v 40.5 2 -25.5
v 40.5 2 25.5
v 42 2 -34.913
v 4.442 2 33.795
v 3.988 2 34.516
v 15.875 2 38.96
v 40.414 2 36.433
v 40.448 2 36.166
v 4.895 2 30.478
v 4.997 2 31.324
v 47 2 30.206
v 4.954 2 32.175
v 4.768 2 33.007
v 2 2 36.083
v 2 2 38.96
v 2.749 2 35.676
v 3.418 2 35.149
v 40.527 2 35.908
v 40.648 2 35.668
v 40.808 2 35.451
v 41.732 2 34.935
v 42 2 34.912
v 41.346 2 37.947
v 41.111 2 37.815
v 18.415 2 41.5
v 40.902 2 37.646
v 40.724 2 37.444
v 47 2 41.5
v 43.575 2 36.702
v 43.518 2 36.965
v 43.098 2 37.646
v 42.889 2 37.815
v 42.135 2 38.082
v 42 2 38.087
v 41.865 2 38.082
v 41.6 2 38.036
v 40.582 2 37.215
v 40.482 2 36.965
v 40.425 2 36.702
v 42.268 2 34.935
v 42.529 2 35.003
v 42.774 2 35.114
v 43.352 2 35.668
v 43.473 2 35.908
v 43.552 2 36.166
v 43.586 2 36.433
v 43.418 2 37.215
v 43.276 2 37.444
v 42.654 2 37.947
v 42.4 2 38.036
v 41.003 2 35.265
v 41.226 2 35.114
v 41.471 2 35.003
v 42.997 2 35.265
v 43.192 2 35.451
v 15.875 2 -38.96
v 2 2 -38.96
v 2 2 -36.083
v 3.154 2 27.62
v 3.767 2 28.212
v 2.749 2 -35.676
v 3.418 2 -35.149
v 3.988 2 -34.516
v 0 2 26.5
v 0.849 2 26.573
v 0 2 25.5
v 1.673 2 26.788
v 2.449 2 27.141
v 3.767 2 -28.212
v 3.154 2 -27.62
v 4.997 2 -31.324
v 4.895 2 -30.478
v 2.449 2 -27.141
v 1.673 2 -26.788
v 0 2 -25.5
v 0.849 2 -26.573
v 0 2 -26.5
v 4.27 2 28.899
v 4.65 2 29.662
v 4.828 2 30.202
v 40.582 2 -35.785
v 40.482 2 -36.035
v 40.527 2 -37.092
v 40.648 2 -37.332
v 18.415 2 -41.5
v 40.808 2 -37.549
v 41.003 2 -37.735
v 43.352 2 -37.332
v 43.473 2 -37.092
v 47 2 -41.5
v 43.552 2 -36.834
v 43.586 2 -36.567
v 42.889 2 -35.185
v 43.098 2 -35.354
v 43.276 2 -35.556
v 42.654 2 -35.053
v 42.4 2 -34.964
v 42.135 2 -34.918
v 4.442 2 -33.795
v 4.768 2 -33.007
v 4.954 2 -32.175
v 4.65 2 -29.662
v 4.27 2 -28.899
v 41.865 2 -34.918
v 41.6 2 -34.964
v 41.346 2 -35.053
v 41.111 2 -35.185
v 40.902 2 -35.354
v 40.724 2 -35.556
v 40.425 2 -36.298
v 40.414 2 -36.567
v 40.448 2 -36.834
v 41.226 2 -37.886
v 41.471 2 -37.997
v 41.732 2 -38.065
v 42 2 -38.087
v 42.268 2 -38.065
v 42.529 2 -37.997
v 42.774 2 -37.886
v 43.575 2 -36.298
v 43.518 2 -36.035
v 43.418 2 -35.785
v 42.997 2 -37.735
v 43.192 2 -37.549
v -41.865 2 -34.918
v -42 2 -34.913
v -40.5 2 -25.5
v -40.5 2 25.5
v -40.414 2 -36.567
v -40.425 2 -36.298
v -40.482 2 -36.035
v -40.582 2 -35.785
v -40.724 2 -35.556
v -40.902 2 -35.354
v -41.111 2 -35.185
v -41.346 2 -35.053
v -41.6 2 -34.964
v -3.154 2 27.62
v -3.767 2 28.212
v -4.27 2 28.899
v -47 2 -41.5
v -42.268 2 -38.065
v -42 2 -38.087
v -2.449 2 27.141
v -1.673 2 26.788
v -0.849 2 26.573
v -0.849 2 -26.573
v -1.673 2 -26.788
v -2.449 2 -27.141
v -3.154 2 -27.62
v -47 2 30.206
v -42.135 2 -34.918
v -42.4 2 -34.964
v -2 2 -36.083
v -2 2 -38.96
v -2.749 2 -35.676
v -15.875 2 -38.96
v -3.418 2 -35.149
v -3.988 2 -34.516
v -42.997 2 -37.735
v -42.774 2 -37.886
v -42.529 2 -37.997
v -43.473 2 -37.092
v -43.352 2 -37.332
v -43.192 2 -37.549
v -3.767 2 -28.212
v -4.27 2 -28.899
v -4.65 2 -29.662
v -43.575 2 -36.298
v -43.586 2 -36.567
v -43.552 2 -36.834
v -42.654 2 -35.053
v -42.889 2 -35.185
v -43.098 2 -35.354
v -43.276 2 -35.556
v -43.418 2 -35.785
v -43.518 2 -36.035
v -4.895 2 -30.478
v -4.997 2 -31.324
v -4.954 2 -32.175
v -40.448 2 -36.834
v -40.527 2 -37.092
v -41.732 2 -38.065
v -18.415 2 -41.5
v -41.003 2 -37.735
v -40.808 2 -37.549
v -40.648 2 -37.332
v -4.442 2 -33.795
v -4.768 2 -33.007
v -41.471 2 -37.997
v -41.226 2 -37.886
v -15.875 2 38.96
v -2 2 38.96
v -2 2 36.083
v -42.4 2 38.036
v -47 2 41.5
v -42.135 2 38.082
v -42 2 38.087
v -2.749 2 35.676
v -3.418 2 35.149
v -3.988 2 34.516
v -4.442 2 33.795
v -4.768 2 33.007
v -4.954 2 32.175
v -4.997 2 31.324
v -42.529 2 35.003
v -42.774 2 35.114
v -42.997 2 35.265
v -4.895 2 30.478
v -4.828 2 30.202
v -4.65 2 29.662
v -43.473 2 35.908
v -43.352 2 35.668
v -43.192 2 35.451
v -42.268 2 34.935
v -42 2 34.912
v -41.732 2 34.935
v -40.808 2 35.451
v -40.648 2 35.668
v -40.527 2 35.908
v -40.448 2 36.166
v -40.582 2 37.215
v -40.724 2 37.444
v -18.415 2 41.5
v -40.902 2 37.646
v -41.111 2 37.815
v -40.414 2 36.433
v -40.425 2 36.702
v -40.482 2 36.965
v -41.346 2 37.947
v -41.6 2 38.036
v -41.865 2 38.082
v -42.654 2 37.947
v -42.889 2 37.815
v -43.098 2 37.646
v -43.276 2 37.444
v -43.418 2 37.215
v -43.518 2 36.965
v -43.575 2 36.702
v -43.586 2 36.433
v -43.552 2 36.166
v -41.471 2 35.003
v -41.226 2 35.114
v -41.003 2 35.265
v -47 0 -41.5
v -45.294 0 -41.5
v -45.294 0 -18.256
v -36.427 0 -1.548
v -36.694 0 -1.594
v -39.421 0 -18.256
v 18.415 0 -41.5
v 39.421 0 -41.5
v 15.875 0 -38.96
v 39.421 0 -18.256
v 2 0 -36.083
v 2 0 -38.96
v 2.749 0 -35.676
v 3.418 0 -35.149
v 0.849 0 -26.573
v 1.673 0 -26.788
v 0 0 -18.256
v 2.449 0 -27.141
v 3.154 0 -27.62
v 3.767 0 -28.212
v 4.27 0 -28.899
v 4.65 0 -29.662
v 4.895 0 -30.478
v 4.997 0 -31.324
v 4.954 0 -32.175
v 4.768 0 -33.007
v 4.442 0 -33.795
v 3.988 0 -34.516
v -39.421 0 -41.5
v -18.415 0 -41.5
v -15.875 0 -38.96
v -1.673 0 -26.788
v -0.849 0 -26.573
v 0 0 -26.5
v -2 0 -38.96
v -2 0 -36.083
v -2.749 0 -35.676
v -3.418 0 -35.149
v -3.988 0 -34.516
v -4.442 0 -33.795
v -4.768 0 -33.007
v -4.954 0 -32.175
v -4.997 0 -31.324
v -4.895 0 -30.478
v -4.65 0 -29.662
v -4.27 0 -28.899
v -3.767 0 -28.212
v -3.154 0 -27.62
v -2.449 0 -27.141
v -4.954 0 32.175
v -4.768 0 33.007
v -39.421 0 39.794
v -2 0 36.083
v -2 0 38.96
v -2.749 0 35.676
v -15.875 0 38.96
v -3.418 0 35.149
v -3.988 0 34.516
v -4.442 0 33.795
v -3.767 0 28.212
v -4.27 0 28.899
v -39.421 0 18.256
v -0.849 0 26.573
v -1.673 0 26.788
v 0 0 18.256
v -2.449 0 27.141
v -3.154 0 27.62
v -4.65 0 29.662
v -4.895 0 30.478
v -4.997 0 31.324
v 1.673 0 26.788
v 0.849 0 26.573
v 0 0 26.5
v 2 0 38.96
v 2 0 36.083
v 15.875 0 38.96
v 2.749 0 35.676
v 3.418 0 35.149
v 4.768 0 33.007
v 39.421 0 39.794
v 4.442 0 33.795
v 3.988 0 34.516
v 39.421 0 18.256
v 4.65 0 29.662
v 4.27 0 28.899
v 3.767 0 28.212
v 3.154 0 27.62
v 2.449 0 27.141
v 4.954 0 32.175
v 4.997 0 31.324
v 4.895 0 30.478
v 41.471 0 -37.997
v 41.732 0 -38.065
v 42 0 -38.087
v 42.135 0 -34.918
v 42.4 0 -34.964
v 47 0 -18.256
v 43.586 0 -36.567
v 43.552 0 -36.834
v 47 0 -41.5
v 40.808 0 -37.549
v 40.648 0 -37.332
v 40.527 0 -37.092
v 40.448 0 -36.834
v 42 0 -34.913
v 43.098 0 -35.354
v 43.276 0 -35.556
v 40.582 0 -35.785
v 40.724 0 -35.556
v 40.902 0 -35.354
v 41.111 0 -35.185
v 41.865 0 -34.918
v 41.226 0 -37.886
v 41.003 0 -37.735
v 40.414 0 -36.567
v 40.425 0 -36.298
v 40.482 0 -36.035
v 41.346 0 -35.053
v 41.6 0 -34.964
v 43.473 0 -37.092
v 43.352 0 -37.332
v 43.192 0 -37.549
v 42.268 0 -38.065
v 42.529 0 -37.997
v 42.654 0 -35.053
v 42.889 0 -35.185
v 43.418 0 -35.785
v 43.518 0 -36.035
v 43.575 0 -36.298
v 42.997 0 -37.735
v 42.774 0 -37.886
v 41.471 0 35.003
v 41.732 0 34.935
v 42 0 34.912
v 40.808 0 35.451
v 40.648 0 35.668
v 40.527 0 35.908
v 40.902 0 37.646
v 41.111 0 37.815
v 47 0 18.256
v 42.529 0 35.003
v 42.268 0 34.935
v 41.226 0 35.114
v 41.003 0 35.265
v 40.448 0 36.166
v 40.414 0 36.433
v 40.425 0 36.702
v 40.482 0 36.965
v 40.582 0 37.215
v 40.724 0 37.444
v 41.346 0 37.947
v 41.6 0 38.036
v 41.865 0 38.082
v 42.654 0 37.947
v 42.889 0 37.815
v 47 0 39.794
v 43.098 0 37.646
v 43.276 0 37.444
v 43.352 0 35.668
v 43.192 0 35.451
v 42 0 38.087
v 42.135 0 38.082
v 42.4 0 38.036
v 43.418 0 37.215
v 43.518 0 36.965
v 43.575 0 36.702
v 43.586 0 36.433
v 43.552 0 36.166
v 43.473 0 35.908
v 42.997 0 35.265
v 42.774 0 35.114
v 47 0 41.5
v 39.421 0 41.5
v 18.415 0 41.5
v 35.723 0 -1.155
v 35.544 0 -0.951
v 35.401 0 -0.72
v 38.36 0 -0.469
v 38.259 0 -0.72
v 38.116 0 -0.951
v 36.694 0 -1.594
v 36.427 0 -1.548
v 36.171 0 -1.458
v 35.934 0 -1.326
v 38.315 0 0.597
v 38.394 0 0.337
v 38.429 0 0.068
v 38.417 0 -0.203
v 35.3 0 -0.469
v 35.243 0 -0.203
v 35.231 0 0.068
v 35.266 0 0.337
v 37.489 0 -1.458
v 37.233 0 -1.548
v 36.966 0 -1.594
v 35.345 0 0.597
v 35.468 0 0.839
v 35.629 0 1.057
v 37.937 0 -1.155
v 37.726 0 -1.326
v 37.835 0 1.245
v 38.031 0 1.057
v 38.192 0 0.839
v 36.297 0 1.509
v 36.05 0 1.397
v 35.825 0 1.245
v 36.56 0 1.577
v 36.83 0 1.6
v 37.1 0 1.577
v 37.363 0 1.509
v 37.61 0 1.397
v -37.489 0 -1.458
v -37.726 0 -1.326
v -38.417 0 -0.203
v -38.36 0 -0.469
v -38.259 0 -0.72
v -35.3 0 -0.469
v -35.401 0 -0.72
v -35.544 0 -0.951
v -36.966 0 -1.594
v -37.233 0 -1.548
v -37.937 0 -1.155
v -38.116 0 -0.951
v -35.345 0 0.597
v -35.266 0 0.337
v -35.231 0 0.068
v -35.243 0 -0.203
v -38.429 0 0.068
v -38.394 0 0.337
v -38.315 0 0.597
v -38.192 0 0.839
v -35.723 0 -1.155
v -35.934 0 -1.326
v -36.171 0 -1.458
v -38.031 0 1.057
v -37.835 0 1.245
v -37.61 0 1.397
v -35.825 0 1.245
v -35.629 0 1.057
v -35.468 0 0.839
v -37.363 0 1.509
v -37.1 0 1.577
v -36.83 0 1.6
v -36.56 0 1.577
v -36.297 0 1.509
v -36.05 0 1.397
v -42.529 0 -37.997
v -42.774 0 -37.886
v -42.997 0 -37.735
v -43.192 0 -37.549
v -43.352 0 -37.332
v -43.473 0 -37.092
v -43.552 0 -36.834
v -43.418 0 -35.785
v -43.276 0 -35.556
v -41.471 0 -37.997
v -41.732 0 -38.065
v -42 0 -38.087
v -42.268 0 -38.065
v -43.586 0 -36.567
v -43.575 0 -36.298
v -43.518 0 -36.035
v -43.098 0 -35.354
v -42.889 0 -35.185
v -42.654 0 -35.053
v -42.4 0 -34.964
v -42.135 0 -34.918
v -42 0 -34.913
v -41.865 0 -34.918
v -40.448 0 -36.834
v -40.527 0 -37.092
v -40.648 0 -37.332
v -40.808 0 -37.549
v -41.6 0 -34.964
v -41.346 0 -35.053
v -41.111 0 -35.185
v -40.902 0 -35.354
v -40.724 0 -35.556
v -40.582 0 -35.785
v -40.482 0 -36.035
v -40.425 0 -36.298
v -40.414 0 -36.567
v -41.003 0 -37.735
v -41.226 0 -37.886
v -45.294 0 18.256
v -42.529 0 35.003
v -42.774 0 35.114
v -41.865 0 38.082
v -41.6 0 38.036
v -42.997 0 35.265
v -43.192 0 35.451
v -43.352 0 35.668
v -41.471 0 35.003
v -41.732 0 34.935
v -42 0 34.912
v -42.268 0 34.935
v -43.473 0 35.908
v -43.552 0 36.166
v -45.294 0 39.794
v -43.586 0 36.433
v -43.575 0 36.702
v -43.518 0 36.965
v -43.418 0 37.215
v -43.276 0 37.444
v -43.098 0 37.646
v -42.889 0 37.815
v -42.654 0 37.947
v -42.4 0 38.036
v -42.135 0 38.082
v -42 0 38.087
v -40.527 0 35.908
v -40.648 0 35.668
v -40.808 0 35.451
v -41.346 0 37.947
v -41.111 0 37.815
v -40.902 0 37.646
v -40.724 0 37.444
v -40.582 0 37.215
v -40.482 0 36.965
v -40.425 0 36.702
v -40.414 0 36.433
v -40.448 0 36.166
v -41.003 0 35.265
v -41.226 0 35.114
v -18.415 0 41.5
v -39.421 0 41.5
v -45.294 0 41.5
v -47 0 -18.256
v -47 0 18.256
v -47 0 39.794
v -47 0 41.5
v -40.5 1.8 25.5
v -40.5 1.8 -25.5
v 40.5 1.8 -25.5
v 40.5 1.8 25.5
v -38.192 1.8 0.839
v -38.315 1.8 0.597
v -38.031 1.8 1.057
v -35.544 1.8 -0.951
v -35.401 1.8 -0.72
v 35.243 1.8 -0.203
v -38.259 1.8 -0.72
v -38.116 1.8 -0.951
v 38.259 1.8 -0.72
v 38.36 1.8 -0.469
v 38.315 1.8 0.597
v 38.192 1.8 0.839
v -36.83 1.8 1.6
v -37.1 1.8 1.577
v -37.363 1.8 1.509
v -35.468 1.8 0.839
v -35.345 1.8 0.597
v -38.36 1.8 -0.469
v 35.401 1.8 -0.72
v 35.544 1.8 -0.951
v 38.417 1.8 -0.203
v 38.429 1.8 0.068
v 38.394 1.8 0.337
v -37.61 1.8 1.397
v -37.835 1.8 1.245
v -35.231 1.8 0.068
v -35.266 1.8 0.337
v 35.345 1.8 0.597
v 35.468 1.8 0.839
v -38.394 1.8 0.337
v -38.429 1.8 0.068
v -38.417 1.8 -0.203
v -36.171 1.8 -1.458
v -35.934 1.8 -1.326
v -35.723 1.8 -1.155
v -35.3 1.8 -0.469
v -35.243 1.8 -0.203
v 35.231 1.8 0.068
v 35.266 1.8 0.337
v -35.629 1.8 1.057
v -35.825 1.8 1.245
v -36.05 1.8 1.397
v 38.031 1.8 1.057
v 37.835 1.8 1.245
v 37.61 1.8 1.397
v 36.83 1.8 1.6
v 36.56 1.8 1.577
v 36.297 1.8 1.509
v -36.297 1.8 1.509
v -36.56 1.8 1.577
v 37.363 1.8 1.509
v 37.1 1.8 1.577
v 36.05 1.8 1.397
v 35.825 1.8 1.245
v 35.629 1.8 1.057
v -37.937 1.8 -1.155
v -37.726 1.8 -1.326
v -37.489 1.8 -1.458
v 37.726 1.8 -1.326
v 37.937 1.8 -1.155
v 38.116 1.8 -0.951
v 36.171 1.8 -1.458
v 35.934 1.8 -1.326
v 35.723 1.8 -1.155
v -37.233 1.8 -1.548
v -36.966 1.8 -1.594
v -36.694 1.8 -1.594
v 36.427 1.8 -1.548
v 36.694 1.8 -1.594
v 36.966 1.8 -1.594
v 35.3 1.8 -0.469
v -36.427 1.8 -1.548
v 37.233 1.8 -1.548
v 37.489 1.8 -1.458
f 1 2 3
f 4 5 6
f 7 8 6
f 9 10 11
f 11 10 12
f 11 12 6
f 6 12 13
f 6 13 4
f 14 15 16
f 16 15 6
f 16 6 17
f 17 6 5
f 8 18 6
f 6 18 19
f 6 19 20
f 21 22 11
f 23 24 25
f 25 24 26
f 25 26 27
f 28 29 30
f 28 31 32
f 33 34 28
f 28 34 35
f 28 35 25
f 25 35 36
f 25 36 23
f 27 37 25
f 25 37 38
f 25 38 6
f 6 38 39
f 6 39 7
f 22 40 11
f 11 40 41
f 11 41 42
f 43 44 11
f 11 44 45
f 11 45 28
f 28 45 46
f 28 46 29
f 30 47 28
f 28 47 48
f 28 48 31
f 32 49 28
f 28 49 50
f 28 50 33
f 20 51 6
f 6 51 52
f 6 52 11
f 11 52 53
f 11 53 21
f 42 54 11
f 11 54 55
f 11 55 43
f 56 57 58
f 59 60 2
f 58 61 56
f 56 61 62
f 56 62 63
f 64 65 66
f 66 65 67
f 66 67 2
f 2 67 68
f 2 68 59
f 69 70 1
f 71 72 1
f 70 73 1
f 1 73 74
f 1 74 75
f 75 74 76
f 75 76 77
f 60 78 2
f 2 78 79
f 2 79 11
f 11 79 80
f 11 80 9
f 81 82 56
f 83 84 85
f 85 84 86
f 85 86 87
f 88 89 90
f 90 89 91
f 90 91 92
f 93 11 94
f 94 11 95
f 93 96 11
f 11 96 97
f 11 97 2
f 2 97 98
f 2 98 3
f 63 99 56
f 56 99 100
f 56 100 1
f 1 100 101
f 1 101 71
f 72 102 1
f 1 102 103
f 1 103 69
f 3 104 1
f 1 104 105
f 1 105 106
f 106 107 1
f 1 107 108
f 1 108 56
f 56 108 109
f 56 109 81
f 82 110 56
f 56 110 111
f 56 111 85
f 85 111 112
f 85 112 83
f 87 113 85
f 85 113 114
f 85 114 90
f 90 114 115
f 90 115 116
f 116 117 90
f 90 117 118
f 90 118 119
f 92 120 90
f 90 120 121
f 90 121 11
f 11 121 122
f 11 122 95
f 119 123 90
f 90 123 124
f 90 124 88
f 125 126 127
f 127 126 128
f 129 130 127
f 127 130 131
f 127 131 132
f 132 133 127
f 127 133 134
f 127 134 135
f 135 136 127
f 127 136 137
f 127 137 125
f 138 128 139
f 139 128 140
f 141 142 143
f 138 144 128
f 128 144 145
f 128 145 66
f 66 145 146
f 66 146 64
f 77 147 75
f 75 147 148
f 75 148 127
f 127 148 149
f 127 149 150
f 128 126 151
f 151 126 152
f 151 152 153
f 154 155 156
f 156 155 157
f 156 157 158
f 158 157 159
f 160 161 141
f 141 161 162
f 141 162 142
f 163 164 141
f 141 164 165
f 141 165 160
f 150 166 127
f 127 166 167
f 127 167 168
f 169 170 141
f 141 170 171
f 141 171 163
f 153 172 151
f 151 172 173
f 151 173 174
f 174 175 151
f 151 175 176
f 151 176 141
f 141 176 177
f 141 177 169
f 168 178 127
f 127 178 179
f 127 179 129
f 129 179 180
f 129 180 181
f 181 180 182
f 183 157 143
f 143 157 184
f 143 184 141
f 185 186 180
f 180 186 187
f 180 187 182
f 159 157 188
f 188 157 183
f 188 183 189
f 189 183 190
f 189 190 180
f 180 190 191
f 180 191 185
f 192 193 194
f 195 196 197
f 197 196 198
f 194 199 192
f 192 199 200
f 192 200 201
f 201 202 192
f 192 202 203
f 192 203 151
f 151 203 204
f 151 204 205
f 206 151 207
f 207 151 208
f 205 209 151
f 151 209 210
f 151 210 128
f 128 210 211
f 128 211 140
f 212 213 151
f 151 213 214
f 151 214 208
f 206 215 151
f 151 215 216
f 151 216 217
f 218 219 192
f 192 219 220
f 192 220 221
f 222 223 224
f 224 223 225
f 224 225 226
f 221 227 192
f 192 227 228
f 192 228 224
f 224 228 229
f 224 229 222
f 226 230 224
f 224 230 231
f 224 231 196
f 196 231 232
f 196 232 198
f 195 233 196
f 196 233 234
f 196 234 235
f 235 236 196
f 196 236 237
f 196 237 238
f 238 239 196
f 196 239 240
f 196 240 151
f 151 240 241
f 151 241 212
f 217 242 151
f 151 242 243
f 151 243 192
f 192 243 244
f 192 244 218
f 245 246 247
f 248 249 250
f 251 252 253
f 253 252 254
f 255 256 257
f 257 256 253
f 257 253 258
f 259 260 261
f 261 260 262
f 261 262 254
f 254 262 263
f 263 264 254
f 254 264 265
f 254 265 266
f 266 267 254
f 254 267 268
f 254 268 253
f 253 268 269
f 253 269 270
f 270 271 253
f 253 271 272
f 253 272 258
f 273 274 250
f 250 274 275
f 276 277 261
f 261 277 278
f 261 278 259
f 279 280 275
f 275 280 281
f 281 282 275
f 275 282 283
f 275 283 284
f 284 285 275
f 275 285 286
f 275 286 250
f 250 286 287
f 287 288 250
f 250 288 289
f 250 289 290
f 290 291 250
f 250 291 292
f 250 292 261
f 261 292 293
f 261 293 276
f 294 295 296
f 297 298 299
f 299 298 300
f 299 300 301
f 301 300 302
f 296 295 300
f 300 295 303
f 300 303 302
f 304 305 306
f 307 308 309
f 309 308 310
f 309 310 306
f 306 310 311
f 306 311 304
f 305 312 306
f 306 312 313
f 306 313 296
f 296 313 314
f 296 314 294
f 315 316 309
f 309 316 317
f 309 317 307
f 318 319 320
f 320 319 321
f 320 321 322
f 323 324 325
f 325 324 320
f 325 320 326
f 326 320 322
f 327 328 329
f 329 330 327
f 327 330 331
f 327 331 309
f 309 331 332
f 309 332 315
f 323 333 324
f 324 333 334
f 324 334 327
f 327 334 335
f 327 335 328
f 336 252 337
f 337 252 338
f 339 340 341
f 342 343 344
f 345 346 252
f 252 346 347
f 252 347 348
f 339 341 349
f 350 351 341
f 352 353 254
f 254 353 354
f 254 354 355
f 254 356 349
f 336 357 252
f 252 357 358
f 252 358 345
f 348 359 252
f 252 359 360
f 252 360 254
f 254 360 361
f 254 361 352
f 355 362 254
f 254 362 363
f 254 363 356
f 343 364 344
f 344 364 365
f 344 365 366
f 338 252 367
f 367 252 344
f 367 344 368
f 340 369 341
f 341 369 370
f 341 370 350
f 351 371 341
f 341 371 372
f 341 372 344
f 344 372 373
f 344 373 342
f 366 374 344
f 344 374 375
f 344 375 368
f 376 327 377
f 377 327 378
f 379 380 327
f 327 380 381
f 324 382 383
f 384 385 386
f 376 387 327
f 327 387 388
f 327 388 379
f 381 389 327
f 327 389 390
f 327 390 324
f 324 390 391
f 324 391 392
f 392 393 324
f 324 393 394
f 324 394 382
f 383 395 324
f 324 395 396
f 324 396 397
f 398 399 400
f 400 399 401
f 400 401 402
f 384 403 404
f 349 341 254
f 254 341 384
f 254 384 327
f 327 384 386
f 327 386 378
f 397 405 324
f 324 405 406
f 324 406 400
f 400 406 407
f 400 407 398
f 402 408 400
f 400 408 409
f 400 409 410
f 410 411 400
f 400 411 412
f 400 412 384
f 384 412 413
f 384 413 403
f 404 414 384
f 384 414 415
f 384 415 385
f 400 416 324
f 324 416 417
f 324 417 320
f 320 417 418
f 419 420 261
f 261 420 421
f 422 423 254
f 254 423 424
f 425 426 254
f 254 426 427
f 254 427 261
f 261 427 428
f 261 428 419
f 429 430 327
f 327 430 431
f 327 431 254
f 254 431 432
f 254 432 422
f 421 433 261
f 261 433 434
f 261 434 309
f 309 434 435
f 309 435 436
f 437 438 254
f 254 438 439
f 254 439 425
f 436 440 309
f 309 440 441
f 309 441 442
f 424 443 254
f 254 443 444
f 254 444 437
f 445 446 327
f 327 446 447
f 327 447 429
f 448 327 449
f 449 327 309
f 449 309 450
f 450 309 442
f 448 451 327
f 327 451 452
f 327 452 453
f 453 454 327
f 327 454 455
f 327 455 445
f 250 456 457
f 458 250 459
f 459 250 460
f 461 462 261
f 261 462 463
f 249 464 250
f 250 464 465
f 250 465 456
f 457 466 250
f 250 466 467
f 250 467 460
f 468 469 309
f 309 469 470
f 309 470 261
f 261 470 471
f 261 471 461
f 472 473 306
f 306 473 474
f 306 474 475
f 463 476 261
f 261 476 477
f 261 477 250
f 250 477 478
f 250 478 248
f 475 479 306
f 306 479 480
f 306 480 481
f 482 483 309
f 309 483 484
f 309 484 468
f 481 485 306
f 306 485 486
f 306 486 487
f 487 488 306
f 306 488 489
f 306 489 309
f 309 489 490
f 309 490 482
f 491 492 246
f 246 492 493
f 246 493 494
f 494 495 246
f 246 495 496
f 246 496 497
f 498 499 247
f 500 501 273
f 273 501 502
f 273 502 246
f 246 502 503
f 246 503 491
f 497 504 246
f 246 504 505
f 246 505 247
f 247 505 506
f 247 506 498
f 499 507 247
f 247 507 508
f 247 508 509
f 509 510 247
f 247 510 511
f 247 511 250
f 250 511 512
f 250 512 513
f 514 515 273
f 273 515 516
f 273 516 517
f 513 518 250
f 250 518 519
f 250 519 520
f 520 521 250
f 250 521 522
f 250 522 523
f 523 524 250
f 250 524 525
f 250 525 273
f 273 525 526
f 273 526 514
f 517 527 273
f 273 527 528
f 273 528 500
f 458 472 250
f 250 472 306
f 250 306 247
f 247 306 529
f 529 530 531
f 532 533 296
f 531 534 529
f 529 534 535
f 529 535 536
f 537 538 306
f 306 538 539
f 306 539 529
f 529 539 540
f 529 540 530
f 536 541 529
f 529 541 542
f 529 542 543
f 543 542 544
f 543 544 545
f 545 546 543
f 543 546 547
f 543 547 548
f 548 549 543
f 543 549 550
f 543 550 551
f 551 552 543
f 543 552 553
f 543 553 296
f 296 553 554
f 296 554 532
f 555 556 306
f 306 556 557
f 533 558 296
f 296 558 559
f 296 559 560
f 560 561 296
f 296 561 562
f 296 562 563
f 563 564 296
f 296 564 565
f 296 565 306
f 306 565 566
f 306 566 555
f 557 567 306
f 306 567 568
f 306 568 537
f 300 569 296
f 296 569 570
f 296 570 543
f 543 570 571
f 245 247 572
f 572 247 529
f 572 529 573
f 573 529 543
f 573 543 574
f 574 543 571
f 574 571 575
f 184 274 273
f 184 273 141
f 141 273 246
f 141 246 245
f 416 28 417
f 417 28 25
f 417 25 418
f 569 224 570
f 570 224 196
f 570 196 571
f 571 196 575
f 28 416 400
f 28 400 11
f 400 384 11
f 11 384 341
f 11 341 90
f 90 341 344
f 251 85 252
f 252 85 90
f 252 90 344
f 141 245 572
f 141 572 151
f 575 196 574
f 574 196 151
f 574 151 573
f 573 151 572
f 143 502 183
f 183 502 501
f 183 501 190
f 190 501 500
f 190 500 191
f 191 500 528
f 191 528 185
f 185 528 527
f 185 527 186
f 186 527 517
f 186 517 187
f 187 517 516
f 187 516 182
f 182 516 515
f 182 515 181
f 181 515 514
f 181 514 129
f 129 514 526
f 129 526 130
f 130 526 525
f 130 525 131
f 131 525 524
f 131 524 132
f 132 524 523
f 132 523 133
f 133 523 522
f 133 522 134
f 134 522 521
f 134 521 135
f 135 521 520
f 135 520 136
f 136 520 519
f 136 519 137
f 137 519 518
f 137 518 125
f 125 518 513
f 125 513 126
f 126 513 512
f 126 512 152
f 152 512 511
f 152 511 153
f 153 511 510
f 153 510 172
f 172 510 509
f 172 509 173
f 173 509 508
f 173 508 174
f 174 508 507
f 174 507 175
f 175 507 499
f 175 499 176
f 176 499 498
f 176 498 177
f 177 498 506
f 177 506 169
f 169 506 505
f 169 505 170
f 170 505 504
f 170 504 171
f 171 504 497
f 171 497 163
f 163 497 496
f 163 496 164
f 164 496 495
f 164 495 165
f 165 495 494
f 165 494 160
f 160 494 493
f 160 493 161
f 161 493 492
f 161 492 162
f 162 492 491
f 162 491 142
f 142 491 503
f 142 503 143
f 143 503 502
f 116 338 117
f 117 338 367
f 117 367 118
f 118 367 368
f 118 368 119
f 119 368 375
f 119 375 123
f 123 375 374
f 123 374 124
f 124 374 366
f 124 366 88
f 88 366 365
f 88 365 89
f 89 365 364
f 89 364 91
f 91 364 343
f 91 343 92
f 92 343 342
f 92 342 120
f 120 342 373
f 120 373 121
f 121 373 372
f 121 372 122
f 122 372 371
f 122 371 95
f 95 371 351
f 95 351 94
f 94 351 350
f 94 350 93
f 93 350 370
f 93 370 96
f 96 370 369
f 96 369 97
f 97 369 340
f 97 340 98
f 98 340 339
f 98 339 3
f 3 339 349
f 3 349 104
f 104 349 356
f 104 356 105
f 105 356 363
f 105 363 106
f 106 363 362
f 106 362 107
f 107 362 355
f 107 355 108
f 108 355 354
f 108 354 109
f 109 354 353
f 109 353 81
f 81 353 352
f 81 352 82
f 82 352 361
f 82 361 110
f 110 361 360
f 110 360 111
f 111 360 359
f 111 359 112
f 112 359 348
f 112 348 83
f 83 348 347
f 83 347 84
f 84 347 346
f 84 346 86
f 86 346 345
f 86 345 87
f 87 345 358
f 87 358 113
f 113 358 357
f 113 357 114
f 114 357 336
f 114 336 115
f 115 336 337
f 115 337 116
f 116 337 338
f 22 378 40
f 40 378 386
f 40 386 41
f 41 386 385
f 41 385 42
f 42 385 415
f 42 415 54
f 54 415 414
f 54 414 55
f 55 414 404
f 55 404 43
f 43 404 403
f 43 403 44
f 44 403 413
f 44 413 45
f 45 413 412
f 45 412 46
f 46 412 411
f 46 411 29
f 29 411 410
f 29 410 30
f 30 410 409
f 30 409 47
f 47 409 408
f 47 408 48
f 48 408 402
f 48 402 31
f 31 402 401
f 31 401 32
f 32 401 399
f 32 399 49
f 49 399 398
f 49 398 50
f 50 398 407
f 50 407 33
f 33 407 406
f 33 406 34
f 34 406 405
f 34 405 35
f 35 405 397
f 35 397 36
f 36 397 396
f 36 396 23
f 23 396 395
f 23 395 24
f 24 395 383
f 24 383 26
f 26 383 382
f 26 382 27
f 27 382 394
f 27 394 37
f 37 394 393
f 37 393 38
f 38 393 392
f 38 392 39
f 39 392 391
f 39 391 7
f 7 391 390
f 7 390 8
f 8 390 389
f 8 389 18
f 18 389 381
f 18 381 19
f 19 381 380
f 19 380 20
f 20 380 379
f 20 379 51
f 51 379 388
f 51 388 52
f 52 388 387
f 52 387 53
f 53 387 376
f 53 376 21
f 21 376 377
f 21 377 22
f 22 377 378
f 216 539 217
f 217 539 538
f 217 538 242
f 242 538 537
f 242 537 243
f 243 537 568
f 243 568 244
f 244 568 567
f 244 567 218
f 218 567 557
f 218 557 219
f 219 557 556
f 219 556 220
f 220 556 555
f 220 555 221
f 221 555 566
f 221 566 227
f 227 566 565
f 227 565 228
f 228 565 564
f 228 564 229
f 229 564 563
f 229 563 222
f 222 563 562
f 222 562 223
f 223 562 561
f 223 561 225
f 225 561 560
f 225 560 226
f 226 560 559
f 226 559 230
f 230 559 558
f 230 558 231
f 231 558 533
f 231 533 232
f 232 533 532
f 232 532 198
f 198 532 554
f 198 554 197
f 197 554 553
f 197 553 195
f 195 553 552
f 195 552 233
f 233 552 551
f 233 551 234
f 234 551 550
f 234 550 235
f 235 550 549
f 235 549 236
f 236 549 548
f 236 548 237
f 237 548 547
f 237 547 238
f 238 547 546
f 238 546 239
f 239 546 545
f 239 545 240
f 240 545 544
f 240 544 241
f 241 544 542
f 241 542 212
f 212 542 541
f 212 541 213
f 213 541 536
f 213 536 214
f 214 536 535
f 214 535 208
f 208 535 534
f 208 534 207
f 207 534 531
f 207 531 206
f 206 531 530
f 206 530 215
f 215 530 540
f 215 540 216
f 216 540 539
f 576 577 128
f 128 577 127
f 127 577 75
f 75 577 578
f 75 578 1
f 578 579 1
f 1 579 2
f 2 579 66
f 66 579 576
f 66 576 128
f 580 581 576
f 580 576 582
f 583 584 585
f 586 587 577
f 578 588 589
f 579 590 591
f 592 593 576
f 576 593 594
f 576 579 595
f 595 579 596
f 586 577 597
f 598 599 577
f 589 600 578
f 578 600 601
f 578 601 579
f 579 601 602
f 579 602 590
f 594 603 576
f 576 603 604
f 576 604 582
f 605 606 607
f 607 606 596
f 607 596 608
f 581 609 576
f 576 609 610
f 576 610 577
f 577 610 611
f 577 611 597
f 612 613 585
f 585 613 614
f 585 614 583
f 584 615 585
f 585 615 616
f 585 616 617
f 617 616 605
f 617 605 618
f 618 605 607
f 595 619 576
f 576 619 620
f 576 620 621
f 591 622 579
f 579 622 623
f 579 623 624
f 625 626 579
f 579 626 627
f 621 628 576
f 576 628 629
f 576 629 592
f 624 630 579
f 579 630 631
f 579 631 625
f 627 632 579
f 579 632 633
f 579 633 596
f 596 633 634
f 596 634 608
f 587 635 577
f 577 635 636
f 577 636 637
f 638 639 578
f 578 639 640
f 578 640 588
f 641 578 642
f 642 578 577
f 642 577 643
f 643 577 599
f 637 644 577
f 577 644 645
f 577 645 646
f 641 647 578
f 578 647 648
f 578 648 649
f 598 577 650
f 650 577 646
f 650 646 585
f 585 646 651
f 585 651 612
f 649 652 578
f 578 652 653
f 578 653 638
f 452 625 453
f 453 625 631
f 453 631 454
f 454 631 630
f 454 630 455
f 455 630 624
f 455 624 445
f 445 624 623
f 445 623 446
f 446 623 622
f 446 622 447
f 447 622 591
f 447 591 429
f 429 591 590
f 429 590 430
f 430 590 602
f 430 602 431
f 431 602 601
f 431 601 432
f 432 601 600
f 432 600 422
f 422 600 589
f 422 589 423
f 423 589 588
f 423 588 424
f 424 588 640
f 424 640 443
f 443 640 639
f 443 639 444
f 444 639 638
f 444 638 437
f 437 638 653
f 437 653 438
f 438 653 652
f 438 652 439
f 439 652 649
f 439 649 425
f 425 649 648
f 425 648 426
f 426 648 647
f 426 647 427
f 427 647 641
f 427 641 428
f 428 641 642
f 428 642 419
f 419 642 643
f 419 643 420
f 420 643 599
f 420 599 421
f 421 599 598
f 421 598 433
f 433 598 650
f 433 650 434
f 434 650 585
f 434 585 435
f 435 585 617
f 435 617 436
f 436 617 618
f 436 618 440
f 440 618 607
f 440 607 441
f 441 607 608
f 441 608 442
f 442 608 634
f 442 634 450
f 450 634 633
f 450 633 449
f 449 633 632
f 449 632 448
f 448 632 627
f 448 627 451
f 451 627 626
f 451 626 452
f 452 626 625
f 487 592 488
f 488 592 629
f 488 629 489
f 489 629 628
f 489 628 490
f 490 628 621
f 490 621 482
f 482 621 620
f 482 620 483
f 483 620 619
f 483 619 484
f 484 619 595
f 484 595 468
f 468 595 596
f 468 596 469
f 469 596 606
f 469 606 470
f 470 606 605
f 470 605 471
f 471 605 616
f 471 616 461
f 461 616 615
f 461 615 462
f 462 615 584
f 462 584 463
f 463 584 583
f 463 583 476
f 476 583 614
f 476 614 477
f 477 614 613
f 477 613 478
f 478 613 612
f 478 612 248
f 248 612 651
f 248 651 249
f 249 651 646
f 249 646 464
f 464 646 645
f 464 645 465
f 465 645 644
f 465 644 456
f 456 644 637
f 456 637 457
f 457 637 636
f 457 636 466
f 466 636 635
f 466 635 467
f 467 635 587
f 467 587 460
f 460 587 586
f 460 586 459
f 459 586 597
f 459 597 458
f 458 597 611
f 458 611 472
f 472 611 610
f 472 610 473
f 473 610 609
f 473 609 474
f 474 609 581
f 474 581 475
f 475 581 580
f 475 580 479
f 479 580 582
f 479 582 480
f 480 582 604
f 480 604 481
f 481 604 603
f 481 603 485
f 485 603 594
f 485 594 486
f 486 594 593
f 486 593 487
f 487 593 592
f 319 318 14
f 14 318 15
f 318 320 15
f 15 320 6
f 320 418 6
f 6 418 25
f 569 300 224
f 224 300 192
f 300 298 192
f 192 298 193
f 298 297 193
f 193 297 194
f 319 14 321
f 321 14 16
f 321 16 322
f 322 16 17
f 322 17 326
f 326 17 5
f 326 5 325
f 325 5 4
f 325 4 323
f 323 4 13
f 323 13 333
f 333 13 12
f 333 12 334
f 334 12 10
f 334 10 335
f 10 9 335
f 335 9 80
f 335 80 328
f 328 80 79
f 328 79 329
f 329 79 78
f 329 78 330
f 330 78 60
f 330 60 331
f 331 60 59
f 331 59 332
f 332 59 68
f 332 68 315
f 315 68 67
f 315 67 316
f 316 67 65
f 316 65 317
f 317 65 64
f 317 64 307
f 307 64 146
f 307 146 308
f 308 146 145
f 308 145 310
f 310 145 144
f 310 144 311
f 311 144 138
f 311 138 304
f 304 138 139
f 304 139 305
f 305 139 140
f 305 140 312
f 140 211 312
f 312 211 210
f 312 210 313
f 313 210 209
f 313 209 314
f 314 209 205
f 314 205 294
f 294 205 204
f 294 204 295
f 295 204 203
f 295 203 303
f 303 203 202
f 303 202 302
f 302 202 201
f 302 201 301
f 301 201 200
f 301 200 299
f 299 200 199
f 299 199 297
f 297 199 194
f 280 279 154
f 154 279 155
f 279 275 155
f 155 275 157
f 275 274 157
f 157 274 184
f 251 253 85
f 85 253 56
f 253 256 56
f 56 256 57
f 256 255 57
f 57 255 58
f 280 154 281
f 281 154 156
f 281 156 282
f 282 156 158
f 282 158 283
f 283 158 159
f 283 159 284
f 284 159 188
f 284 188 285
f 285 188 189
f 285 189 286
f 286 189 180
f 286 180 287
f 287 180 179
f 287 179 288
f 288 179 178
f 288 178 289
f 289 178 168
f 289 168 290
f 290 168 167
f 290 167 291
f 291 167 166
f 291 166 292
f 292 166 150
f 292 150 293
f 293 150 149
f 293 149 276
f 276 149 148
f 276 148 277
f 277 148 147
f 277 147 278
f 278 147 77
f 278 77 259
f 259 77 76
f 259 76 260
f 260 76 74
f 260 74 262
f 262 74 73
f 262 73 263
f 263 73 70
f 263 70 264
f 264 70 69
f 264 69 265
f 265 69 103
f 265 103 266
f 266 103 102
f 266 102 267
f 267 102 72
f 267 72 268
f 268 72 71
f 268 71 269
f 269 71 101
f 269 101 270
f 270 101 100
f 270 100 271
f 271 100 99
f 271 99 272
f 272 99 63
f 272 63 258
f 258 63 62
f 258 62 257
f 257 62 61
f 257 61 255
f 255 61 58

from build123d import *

# Parameters (mm, degrees)
SKETCH1_W           = 94
SKETCH1_H           = 83
SKETCH1_R           = 1.5875
BOSS_EXTRUDE1_DEPTH = 2
SKETCH2_W           = 81
SKETCH2_H           = 51
CUT_EXTRUDE1_DEPTH  = 0.2
SKETCH3_R           = 1.6
CUT_EXTRUDE2_DEPTH  = 63.731570999


with BuildPart() as part:
    # Sketch1 → Boss-Extrude1 (new body)
    with BuildSketch(Plane(origin=(0, 0, 0), x_dir=(1, 0, 0), z_dir=(0, 1, 0))):
        Rectangle(SKETCH1_W, SKETCH1_H)
        with Locations((-42, 36.5)):
            Circle(SKETCH1_R, mode=Mode.SUBTRACT)
        with Locations((42, 36.5)):
            Circle(SKETCH1_R, mode=Mode.SUBTRACT)
        with Locations((42, -36.5)):
            Circle(SKETCH1_R, mode=Mode.SUBTRACT)
        with Locations((-42, -36.5)):
            Circle(SKETCH1_R, mode=Mode.SUBTRACT)
    extrude(amount=BOSS_EXTRUDE1_DEPTH)

    # Sketch2 → Cut-Extrude1 (cut)
    with BuildSketch(Plane(origin=(0, 2, 0), x_dir=(1, 0, 0), z_dir=(0, 1, 0))):
        Rectangle(SKETCH2_W, SKETCH2_H)
    extrude(amount=-CUT_EXTRUDE1_DEPTH, mode=Mode.SUBTRACT)

    # Sketch3 → Cut-Extrude2 (cut, through all)
    with BuildSketch(Plane(origin=(0, 2, 0), x_dir=(1, 0, 0), z_dir=(0, 1, 0))):
        with BuildLine():
            Line((18.415, 41.5), (-18.415, 41.5))
            Line((-18.415, 41.5), (-15.875, 38.96))
            Line((-15.875, 38.96), (-2, 38.96))
            Line((-2, 38.96), (-2, 36.082575695))
            ThreePointArc((-2, 36.082575695), (0, 26.5), (2, 36.082575695))
            Line((2, 36.082575695), (2, 38.96))
            Line((2, 38.96), (15.875, 38.96))
            Line((15.875, 38.96), (18.415, 41.5))
        make_face()
        with BuildLine():
            Line((-18.415, -41.5), (18.415, -41.5))
            Line((18.415, -41.5), (15.875, -38.96))
            Line((15.875, -38.96), (2, -38.96))
            Line((2, -38.96), (2, -36.082575695))
            ThreePointArc((2, -36.082575695), (0, -26.5), (-2, -36.082575695))
            Line((-2, -36.082575695), (-2, -38.96))
            Line((-2, -38.96), (-15.875, -38.96))
            Line((-15.875, -38.96), (-18.415, -41.5))
        make_face()
        with Locations((-36.83, 0)):
            Circle(SKETCH3_R)
        with Locations((36.83, 0)):
            Circle(SKETCH3_R)
    extrude(amount=-CUT_EXTRUDE2_DEPTH, mode=Mode.SUBTRACT)


solid = part.part
